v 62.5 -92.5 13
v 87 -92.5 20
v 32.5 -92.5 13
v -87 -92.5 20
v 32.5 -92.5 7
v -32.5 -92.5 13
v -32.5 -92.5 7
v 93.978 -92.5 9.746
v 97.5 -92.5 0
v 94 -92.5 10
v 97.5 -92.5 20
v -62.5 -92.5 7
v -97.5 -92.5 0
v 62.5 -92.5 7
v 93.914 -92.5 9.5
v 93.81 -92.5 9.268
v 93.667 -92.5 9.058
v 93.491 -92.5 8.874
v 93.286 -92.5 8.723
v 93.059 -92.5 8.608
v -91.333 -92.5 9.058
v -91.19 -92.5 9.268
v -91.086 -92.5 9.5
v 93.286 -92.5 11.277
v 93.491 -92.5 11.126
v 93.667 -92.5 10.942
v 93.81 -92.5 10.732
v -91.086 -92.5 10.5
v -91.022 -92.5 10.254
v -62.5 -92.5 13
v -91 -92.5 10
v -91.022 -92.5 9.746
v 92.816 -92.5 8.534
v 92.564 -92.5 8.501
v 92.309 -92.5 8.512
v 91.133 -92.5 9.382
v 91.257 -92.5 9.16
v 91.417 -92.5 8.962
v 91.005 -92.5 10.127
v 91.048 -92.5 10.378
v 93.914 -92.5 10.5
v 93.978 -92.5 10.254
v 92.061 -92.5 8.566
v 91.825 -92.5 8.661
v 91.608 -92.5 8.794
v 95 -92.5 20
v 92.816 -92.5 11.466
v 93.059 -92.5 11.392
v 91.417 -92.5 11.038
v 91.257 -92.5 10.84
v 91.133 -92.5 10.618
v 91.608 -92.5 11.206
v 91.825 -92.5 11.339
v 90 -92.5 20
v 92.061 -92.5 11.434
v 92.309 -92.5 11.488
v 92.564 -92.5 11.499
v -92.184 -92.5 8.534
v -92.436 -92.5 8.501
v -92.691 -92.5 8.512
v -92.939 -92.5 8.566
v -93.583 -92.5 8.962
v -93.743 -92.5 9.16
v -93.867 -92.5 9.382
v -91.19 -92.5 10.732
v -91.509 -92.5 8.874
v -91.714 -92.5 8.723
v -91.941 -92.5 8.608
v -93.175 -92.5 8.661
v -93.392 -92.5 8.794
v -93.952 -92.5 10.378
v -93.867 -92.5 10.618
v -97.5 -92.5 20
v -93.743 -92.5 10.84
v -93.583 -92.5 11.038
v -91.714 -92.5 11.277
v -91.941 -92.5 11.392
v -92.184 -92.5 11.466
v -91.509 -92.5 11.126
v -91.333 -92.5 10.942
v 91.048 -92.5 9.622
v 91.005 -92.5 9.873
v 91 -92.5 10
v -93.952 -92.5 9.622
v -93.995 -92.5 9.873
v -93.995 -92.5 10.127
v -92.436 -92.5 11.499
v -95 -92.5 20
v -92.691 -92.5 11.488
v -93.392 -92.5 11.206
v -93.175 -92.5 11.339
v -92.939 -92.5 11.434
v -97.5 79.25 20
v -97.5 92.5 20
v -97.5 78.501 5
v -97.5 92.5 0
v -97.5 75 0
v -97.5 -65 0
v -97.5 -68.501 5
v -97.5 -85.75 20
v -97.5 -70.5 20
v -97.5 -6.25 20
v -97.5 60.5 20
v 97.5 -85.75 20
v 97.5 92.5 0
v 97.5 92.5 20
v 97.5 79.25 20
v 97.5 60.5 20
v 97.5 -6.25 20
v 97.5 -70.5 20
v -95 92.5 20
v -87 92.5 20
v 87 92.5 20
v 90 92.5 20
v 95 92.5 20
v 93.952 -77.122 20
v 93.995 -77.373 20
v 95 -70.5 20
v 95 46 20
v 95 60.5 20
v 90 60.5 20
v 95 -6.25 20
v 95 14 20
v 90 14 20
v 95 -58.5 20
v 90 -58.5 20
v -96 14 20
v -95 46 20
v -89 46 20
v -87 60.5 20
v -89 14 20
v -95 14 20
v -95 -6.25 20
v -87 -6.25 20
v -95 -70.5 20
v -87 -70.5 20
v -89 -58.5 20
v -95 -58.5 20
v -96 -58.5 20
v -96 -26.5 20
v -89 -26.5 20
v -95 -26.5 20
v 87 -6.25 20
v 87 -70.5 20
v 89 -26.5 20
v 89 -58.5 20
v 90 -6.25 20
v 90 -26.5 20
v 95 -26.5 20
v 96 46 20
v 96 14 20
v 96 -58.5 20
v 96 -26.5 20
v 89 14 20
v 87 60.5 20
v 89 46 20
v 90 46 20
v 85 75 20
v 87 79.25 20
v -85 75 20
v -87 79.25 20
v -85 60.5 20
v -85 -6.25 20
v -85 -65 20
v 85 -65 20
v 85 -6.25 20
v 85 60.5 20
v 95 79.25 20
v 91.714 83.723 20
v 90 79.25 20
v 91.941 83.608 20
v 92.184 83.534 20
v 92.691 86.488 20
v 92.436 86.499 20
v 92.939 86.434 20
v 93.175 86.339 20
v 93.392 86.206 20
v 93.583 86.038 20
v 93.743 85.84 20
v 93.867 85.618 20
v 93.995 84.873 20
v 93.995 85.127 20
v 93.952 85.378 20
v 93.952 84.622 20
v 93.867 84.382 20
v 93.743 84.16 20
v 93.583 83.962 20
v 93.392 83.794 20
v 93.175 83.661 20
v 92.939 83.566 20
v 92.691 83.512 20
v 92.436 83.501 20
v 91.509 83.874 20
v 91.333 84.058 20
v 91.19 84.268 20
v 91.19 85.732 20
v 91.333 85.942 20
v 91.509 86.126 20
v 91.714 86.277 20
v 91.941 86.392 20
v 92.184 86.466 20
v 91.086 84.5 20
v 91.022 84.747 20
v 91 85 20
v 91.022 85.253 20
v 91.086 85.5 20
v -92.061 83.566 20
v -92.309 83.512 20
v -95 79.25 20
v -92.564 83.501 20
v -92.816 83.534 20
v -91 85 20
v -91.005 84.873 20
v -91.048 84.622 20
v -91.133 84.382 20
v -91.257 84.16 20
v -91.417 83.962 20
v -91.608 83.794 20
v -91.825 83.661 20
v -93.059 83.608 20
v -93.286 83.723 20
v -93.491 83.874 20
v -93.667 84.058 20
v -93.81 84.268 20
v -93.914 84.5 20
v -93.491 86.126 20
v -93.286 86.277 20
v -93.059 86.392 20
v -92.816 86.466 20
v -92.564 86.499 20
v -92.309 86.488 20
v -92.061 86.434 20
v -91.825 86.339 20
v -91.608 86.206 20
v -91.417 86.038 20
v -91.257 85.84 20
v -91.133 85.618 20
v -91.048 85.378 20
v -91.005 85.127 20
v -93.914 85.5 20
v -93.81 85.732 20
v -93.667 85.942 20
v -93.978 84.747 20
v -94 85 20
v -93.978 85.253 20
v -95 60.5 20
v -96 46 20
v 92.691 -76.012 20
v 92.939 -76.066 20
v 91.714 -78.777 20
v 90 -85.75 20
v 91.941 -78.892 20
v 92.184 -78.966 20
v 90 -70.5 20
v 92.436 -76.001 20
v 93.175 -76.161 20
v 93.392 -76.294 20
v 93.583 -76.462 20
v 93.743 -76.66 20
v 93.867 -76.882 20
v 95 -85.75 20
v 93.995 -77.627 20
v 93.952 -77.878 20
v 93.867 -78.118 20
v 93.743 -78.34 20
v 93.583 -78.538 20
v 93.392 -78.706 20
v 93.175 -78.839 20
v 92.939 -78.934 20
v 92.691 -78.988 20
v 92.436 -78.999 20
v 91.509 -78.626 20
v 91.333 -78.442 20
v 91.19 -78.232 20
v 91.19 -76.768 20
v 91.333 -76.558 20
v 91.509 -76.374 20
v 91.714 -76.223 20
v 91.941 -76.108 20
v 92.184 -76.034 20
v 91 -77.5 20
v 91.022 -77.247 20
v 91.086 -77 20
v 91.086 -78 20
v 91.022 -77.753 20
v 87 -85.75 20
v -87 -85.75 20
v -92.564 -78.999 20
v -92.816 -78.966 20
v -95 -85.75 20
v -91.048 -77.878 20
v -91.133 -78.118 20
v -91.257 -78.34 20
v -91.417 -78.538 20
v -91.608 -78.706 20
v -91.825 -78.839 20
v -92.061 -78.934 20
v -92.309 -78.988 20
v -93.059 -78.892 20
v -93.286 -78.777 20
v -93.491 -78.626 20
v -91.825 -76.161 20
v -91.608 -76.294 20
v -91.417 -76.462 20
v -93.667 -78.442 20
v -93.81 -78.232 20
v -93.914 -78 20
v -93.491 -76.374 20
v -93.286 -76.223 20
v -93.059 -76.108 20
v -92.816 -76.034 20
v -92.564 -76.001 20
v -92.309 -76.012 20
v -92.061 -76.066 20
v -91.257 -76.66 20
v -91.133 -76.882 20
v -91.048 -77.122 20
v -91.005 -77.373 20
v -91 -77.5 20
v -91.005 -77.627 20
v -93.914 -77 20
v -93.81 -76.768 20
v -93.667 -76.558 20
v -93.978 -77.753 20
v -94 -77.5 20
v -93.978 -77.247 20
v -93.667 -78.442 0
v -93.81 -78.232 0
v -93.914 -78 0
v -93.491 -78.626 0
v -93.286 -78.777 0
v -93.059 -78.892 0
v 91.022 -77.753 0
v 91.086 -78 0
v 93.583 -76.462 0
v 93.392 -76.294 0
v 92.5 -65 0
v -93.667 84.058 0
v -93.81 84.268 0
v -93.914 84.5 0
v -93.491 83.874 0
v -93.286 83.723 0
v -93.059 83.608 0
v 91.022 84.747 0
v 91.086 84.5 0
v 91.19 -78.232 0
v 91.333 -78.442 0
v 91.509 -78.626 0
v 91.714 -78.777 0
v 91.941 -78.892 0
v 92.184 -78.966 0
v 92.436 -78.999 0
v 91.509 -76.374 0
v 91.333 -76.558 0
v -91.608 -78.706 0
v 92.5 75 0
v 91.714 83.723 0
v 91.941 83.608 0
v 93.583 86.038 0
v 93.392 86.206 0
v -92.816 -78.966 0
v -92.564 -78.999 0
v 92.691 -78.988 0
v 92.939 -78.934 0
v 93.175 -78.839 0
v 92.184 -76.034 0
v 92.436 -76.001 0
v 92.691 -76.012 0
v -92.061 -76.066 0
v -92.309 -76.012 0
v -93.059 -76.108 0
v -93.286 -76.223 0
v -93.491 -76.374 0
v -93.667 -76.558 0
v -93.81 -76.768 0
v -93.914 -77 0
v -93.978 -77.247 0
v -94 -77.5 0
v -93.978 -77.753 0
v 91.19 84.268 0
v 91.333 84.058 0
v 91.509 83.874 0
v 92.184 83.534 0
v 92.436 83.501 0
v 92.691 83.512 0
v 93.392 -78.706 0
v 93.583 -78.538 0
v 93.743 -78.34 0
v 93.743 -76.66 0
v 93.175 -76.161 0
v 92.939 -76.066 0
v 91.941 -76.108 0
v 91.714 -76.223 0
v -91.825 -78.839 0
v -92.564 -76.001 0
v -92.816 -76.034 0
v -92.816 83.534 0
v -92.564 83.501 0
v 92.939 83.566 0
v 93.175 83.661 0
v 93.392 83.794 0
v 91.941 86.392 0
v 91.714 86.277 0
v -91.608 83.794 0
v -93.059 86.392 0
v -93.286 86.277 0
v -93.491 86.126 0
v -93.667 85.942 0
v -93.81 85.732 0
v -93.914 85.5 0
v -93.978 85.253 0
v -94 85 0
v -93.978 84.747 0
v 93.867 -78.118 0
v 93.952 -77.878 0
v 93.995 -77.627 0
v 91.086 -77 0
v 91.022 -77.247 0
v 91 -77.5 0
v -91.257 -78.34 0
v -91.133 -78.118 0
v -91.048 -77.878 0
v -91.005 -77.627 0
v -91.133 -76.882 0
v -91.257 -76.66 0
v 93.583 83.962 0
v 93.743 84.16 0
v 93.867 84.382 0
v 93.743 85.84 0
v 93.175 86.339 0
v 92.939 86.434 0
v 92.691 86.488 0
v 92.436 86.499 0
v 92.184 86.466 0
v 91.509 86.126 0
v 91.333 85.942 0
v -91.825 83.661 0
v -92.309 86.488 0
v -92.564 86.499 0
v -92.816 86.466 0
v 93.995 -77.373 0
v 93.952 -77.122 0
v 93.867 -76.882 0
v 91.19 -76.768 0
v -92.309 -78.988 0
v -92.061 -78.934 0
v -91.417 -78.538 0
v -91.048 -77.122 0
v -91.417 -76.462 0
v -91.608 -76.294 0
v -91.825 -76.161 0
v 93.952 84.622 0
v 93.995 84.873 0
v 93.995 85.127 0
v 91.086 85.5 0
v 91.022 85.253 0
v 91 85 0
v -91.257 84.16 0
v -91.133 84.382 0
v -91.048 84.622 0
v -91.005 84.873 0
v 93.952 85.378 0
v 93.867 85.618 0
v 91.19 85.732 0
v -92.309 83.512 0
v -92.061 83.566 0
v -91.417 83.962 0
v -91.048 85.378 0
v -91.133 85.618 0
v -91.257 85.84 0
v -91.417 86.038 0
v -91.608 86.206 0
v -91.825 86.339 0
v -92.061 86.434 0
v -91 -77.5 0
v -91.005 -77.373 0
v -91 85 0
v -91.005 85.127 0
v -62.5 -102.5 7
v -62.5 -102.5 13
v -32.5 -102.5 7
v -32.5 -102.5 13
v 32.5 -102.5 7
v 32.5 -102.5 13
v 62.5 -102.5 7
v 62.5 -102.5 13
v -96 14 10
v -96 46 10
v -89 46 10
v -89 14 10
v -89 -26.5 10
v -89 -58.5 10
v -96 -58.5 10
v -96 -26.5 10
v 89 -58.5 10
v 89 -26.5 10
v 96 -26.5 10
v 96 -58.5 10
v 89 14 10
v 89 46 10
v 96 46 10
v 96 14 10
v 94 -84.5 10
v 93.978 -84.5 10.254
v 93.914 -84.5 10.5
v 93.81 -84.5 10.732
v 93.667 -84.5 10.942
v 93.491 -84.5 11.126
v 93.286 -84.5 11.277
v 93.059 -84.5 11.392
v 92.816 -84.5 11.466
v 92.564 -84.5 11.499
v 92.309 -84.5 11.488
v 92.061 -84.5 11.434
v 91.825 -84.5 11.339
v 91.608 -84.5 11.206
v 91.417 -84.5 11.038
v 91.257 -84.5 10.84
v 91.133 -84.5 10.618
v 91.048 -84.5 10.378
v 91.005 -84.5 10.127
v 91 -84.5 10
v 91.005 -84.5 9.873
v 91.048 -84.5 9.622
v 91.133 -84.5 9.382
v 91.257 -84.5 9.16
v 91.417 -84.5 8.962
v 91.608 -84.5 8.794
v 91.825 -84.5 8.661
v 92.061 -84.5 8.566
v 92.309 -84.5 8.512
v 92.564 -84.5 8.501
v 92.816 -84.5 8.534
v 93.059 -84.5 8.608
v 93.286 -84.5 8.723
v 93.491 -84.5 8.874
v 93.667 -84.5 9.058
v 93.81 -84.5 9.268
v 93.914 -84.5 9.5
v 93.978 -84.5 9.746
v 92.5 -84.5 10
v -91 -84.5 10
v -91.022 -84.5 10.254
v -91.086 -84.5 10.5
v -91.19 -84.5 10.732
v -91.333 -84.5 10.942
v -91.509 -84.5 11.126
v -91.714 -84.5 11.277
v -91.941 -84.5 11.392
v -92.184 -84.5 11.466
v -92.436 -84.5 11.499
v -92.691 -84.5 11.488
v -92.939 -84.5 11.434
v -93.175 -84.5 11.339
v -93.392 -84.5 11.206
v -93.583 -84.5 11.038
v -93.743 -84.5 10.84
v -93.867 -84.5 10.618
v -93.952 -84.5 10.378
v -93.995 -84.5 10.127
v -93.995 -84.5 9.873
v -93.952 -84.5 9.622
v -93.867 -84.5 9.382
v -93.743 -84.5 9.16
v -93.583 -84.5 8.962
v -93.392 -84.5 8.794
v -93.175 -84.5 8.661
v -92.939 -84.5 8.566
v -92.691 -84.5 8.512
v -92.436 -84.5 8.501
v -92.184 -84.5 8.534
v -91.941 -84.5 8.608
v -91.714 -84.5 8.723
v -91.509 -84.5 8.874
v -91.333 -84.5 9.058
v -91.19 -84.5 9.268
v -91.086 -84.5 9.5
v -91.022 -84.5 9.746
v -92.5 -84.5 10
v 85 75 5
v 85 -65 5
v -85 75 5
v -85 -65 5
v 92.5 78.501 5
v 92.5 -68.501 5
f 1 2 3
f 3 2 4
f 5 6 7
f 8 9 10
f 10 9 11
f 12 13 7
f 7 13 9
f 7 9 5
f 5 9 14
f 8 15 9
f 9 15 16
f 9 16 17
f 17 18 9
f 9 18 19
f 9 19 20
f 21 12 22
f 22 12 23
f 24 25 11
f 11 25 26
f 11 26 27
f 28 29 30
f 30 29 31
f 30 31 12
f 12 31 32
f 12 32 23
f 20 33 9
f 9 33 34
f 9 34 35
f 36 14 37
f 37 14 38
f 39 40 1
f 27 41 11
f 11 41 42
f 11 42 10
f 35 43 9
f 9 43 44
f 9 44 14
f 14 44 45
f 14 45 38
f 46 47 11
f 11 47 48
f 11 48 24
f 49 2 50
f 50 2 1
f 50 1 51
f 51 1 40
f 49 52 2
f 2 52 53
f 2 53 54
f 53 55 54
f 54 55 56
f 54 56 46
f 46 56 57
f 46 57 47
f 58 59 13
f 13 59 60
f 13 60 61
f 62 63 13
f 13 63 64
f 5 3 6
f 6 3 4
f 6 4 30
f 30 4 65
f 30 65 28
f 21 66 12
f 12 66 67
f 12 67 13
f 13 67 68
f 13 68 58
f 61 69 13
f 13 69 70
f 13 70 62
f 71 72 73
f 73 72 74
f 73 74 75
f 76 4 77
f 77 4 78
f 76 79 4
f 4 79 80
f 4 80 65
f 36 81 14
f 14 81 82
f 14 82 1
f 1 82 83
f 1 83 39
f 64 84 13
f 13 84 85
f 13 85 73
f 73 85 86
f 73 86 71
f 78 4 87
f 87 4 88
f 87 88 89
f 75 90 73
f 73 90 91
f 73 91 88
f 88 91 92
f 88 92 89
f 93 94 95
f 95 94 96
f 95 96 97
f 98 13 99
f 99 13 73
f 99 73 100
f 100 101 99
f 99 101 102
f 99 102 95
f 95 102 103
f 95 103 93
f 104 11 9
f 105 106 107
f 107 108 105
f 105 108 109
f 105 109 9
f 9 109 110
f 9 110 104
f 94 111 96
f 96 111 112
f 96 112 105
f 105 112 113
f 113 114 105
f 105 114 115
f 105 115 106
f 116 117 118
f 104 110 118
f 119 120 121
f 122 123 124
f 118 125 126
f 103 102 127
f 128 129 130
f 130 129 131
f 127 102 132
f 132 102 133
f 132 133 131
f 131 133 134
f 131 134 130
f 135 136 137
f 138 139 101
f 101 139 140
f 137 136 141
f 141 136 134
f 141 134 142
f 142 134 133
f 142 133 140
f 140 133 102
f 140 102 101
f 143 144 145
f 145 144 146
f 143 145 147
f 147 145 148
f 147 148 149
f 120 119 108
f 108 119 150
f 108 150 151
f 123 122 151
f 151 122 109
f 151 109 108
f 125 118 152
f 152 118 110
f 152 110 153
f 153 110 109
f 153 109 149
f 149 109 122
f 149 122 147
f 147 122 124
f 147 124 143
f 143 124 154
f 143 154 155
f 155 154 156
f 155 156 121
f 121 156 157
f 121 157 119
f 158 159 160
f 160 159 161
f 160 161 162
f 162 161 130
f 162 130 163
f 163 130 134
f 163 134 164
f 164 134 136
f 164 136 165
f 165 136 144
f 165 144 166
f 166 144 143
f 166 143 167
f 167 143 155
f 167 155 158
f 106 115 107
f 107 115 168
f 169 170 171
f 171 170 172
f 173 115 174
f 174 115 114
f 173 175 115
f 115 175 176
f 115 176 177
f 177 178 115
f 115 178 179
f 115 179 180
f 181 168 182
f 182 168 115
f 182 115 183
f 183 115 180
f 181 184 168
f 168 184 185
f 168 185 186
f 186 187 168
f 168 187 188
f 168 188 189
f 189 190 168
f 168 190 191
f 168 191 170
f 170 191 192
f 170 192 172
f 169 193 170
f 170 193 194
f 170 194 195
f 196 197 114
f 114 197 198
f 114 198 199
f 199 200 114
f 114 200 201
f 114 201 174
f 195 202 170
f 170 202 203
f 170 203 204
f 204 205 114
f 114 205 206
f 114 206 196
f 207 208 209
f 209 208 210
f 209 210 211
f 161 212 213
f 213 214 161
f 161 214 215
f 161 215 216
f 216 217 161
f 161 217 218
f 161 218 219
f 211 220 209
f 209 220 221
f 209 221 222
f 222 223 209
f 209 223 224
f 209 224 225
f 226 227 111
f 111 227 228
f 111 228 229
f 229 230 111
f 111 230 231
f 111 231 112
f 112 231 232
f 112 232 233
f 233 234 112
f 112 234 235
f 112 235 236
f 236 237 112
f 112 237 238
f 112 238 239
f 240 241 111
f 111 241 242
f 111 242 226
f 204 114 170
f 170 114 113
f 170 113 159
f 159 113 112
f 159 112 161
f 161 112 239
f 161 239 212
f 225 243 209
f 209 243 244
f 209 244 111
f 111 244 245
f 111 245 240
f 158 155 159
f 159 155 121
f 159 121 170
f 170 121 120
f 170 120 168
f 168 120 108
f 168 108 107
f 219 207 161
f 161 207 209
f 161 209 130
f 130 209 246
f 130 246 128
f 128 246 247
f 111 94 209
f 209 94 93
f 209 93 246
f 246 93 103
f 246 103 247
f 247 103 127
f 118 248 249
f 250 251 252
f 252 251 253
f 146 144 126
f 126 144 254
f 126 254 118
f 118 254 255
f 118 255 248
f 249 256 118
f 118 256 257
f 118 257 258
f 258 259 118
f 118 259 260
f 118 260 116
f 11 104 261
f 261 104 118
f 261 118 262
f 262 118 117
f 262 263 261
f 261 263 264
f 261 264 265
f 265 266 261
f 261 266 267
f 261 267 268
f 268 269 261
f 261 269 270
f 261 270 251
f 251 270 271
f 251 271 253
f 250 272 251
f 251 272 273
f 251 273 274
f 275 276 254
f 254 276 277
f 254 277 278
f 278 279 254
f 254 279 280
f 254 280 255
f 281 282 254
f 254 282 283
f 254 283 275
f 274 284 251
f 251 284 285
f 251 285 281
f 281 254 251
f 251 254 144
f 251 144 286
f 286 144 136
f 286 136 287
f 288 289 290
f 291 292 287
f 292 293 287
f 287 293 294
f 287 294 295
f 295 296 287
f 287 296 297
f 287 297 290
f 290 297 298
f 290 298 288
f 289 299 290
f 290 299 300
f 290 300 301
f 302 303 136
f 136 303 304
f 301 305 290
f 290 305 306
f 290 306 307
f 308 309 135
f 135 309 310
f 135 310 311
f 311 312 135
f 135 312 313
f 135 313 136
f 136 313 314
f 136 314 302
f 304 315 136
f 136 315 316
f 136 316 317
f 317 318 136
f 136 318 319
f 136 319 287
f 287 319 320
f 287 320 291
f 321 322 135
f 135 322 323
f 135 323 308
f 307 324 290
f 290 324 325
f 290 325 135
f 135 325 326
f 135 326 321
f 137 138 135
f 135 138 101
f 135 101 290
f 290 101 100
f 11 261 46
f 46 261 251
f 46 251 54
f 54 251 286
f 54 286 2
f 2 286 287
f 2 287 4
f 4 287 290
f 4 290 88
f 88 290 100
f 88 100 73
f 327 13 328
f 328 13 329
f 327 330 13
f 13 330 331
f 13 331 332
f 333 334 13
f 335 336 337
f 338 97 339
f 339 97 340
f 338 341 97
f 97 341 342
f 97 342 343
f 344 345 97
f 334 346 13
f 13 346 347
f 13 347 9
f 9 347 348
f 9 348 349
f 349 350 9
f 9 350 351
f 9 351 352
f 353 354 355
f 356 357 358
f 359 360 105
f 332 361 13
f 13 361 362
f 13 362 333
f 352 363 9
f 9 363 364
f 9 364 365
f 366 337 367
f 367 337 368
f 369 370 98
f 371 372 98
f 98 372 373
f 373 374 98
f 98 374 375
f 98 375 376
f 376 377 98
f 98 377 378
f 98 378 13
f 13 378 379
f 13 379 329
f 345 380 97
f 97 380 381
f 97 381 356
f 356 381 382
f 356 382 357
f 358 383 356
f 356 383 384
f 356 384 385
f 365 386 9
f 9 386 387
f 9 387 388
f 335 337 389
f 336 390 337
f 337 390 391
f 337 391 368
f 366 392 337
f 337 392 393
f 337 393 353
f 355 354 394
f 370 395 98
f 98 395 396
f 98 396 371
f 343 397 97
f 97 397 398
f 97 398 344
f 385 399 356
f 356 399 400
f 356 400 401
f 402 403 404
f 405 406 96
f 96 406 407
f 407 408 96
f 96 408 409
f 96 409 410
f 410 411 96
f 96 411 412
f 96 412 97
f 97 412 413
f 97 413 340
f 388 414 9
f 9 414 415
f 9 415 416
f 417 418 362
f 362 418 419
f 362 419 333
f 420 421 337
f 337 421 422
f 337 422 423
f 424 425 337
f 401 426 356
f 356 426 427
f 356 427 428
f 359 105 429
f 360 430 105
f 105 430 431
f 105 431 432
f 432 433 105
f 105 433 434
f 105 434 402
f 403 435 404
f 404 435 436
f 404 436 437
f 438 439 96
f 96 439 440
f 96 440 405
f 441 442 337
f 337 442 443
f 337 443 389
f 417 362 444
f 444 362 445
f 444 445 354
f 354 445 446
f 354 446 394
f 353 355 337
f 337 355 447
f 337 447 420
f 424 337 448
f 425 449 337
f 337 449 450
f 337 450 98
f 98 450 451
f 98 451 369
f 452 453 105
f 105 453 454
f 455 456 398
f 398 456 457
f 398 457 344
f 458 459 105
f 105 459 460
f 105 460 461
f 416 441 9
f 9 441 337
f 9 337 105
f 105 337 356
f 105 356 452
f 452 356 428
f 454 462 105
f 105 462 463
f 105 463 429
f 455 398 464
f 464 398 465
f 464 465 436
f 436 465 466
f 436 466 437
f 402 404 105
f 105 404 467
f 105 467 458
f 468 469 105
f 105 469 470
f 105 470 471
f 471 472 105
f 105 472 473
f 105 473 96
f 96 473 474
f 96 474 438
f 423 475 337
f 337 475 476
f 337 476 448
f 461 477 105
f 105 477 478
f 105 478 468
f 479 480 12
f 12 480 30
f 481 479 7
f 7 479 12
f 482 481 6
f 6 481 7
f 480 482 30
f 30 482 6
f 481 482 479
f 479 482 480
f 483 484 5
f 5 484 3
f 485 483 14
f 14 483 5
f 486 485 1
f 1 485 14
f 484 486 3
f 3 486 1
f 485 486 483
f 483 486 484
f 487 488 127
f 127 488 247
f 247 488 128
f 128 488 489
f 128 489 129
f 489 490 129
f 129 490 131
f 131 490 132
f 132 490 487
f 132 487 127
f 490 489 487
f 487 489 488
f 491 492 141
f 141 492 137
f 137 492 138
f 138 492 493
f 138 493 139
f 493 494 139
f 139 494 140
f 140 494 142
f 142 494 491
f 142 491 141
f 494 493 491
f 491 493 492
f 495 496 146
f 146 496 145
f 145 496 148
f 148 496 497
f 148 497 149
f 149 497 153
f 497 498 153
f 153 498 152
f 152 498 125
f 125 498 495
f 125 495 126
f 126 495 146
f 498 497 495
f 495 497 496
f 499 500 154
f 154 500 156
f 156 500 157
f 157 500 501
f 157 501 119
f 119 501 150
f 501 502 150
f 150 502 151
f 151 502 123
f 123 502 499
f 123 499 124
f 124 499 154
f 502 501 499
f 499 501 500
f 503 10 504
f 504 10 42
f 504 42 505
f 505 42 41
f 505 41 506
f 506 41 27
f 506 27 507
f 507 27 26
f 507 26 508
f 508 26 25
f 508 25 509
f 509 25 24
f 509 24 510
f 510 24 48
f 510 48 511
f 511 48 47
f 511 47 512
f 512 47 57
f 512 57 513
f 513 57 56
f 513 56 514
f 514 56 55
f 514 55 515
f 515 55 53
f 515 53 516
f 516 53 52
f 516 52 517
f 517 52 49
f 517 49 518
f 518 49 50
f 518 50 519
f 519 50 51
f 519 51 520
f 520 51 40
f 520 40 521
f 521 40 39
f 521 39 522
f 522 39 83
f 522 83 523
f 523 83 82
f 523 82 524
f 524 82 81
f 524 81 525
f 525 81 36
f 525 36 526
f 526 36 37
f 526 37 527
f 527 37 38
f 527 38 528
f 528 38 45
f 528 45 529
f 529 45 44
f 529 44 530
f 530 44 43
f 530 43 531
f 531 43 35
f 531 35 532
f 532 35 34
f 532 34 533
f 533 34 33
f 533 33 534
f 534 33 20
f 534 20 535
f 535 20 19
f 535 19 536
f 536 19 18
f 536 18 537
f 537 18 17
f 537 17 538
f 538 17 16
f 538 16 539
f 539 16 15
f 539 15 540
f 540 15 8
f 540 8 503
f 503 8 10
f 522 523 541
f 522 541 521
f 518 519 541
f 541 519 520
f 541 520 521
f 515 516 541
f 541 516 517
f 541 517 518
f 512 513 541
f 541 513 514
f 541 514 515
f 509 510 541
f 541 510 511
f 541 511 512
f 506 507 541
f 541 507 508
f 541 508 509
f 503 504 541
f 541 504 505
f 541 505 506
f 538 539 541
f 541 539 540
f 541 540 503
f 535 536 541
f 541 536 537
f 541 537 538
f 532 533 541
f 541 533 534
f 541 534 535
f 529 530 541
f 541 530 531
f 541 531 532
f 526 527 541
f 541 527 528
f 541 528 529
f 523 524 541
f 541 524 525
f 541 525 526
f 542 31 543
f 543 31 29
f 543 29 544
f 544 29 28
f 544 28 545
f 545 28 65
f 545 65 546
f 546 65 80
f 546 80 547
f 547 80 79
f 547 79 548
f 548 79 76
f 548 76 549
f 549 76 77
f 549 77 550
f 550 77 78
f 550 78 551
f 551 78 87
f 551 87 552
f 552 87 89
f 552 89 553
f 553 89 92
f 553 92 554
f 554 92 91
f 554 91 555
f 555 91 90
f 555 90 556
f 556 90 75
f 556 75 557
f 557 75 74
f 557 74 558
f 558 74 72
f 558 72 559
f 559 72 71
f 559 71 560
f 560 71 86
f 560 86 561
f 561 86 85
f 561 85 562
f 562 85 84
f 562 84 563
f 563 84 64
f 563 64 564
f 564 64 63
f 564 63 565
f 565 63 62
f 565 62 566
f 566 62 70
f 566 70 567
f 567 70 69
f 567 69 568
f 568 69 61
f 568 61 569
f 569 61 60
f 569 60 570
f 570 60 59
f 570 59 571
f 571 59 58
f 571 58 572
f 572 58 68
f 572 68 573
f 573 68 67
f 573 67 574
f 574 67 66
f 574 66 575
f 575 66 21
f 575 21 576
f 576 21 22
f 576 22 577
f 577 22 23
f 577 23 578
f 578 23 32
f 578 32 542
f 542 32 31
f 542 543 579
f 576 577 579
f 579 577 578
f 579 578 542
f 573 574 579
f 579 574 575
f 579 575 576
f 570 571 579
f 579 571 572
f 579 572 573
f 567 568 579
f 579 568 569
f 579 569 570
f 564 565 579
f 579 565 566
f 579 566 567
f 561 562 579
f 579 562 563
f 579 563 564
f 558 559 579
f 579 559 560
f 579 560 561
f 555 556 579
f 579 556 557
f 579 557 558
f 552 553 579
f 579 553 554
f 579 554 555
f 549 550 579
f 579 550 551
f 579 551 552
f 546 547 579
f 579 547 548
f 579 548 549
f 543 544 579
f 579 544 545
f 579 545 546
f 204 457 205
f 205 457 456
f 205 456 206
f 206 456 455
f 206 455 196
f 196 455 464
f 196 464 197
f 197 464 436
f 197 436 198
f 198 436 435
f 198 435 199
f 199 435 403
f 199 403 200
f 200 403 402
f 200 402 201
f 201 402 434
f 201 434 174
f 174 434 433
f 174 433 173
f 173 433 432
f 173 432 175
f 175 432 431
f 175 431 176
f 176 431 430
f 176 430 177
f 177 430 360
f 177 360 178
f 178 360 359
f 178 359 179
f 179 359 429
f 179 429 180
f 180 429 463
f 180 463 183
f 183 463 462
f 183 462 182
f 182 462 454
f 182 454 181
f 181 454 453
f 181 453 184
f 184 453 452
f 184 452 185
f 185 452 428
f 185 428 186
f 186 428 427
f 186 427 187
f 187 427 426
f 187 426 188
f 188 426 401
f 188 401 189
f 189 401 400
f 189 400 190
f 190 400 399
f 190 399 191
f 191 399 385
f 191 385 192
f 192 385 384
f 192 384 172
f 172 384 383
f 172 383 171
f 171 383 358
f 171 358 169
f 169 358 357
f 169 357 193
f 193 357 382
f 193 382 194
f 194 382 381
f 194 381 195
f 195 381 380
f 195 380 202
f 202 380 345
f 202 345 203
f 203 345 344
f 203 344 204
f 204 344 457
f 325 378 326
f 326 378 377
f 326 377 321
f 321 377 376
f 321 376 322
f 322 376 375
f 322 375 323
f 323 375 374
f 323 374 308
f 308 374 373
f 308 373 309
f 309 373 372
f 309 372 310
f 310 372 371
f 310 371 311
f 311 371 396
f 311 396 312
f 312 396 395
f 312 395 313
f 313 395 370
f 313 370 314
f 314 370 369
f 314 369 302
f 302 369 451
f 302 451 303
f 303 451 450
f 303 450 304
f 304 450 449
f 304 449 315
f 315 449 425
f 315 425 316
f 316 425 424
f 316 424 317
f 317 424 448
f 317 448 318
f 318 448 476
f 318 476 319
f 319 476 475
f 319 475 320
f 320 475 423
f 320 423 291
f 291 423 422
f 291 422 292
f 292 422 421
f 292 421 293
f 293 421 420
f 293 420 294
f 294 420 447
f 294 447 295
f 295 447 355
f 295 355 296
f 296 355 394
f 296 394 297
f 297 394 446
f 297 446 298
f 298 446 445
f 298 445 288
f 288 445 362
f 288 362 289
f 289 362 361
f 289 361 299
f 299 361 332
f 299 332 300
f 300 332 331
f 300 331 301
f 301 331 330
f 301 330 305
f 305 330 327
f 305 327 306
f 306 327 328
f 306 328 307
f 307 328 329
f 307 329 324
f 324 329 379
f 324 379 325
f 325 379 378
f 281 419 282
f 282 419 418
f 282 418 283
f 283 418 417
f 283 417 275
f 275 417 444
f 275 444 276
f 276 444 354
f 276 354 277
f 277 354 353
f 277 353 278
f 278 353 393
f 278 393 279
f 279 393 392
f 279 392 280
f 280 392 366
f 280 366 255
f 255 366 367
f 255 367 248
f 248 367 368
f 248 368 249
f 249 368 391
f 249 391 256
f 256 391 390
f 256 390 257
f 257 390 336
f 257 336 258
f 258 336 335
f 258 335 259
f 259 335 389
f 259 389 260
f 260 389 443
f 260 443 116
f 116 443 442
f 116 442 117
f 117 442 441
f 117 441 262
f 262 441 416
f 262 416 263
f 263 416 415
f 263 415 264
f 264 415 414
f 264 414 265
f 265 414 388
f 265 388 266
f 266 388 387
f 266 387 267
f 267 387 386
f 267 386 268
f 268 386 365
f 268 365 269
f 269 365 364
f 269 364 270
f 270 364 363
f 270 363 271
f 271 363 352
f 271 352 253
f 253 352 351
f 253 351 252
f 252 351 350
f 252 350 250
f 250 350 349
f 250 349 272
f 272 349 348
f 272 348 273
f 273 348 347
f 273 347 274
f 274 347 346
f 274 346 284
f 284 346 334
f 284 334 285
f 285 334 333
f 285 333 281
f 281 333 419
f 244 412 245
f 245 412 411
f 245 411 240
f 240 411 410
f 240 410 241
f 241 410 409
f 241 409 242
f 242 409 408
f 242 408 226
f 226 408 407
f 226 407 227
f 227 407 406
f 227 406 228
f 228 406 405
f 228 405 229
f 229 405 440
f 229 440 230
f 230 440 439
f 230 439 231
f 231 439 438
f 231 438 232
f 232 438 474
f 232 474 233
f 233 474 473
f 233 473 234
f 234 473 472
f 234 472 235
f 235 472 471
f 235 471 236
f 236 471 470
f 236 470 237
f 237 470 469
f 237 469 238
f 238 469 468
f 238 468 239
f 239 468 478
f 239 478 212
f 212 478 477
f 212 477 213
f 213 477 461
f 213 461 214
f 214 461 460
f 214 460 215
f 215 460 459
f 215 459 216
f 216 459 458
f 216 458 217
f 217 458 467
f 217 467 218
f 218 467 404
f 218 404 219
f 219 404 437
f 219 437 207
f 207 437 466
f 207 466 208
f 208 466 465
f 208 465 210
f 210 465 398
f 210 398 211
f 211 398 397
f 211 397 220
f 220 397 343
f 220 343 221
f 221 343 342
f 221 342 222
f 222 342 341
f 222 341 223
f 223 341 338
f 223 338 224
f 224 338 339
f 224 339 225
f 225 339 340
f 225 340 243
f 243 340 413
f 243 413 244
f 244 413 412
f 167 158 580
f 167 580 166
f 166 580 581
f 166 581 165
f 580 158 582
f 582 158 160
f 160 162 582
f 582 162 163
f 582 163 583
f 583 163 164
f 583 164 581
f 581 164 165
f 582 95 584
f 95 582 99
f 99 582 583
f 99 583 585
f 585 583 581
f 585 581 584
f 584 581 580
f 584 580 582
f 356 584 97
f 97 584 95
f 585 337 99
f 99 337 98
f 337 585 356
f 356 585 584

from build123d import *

# Parameters (mm, degrees)
ESBO_O1_W                = 195
ESBO_O1_H                = 185
RESSALTO_EXTRUS_O1_DEPTH = 20
ESBO_O2_W                = 30
ESBO_O2_H                = 6
RESSALTO_EXTRUS_O2_DEPTH = 10
ESBO_O3_W                = 7
ESBO_O3_H                = 32
CORTE_EXTRUS_O1_DEPTH    = 10
ESBO_O5_R                = 1.5
CORTE_EXTRUS_O3_DEPTH    = 8
ESBO_O6_R                = 1.5
CORTE_EXTRUS_O4_DEPTH    = 21
ESBO_O8_W                = 170
ESBO_O8_H                = 140
CORTE_EXTRUS_O6_DEPTH    = 21
CORTE_EXTRUS_O7_DEPTH    = 190


with BuildPart() as part:
    # Esboço1 → Ressalto-extrusão1 (new body)
    with BuildSketch(Plane.XY):
        Rectangle(ESBO_O1_W, ESBO_O1_H)
    extrude(amount=RESSALTO_EXTRUS_O1_DEPTH)

    # Esboço2 → Ressalto-extrusão2 (add)
    with BuildSketch(Plane.XZ.offset(92.5)):
        with Locations((-47.5, 10)):
            Rectangle(ESBO_O2_W, ESBO_O2_H)
        with Locations((47.5, 10)):
            Rectangle(ESBO_O2_W, ESBO_O2_H)
    extrude(amount=RESSALTO_EXTRUS_O2_DEPTH)

    # Esboço3 → Corte-extrusão1 (cut)
    with BuildSketch(Plane.XY.offset(20)):
        with Locations((-92.5, 30)):
            Rectangle(ESBO_O3_W, ESBO_O3_H)
        with Locations((-92.5, -42.5)):
            Rectangle(ESBO_O3_W, ESBO_O3_H)
        with Locations((92.5, -42.5)):
            Rectangle(ESBO_O3_W, ESBO_O3_H)
        with Locations((92.5, 30)):
            Rectangle(ESBO_O3_W, ESBO_O3_H)
    extrude(amount=-CORTE_EXTRUS_O1_DEPTH, mode=Mode.SUBTRACT)

    # Esboço5 → Corte-extrusão3 (cut)
    with BuildSketch(Plane.XZ.offset(92.5)):
        with Locations((-92.5, 10)):
            Circle(ESBO_O5_R)
        with Locations((92.5, 10)):
            Circle(ESBO_O5_R)
    extrude(amount=-CORTE_EXTRUS_O3_DEPTH, mode=Mode.SUBTRACT)

    # Esboço6 → Corte-extrusão4 (cut, through all)
    with BuildSketch(Plane(origin=(0, 0, 0), x_dir=(-1, 0, 0), z_dir=(0, 0, -1))):
        with Locations((-92.5, 85)):
            Circle(ESBO_O6_R)
        with Locations((92.5, 85)):
            Circle(ESBO_O6_R)
        with Locations((-92.5, -77.5)):
            Circle(ESBO_O6_R)
        with Locations((92.5, -77.5)):
            Circle(ESBO_O6_R)
    extrude(amount=-CORTE_EXTRUS_O4_DEPTH, mode=Mode.SUBTRACT)

    # Esboço8 → Corte-extrusão6 (cut, through all)
    with BuildSketch(Plane(origin=(0, 0, 0), x_dir=(-1, 0, 0), z_dir=(0, 0, -1))):
        with Locations((0, 5)):
            Rectangle(ESBO_O8_W, ESBO_O8_H)
    extrude(amount=-CORTE_EXTRUS_O6_DEPTH, mode=Mode.SUBTRACT)

    # Esboço9 → Corte-extrusão7 (cut)
    with BuildSketch(Plane.ZY.offset(97.5)):
        Polygon((0, -65), (0, 75), (5, 78.501037691), (5, -68.501037691), align=None)
    extrude(amount=-CORTE_EXTRUS_O7_DEPTH, mode=Mode.SUBTRACT)


solid = part.part
